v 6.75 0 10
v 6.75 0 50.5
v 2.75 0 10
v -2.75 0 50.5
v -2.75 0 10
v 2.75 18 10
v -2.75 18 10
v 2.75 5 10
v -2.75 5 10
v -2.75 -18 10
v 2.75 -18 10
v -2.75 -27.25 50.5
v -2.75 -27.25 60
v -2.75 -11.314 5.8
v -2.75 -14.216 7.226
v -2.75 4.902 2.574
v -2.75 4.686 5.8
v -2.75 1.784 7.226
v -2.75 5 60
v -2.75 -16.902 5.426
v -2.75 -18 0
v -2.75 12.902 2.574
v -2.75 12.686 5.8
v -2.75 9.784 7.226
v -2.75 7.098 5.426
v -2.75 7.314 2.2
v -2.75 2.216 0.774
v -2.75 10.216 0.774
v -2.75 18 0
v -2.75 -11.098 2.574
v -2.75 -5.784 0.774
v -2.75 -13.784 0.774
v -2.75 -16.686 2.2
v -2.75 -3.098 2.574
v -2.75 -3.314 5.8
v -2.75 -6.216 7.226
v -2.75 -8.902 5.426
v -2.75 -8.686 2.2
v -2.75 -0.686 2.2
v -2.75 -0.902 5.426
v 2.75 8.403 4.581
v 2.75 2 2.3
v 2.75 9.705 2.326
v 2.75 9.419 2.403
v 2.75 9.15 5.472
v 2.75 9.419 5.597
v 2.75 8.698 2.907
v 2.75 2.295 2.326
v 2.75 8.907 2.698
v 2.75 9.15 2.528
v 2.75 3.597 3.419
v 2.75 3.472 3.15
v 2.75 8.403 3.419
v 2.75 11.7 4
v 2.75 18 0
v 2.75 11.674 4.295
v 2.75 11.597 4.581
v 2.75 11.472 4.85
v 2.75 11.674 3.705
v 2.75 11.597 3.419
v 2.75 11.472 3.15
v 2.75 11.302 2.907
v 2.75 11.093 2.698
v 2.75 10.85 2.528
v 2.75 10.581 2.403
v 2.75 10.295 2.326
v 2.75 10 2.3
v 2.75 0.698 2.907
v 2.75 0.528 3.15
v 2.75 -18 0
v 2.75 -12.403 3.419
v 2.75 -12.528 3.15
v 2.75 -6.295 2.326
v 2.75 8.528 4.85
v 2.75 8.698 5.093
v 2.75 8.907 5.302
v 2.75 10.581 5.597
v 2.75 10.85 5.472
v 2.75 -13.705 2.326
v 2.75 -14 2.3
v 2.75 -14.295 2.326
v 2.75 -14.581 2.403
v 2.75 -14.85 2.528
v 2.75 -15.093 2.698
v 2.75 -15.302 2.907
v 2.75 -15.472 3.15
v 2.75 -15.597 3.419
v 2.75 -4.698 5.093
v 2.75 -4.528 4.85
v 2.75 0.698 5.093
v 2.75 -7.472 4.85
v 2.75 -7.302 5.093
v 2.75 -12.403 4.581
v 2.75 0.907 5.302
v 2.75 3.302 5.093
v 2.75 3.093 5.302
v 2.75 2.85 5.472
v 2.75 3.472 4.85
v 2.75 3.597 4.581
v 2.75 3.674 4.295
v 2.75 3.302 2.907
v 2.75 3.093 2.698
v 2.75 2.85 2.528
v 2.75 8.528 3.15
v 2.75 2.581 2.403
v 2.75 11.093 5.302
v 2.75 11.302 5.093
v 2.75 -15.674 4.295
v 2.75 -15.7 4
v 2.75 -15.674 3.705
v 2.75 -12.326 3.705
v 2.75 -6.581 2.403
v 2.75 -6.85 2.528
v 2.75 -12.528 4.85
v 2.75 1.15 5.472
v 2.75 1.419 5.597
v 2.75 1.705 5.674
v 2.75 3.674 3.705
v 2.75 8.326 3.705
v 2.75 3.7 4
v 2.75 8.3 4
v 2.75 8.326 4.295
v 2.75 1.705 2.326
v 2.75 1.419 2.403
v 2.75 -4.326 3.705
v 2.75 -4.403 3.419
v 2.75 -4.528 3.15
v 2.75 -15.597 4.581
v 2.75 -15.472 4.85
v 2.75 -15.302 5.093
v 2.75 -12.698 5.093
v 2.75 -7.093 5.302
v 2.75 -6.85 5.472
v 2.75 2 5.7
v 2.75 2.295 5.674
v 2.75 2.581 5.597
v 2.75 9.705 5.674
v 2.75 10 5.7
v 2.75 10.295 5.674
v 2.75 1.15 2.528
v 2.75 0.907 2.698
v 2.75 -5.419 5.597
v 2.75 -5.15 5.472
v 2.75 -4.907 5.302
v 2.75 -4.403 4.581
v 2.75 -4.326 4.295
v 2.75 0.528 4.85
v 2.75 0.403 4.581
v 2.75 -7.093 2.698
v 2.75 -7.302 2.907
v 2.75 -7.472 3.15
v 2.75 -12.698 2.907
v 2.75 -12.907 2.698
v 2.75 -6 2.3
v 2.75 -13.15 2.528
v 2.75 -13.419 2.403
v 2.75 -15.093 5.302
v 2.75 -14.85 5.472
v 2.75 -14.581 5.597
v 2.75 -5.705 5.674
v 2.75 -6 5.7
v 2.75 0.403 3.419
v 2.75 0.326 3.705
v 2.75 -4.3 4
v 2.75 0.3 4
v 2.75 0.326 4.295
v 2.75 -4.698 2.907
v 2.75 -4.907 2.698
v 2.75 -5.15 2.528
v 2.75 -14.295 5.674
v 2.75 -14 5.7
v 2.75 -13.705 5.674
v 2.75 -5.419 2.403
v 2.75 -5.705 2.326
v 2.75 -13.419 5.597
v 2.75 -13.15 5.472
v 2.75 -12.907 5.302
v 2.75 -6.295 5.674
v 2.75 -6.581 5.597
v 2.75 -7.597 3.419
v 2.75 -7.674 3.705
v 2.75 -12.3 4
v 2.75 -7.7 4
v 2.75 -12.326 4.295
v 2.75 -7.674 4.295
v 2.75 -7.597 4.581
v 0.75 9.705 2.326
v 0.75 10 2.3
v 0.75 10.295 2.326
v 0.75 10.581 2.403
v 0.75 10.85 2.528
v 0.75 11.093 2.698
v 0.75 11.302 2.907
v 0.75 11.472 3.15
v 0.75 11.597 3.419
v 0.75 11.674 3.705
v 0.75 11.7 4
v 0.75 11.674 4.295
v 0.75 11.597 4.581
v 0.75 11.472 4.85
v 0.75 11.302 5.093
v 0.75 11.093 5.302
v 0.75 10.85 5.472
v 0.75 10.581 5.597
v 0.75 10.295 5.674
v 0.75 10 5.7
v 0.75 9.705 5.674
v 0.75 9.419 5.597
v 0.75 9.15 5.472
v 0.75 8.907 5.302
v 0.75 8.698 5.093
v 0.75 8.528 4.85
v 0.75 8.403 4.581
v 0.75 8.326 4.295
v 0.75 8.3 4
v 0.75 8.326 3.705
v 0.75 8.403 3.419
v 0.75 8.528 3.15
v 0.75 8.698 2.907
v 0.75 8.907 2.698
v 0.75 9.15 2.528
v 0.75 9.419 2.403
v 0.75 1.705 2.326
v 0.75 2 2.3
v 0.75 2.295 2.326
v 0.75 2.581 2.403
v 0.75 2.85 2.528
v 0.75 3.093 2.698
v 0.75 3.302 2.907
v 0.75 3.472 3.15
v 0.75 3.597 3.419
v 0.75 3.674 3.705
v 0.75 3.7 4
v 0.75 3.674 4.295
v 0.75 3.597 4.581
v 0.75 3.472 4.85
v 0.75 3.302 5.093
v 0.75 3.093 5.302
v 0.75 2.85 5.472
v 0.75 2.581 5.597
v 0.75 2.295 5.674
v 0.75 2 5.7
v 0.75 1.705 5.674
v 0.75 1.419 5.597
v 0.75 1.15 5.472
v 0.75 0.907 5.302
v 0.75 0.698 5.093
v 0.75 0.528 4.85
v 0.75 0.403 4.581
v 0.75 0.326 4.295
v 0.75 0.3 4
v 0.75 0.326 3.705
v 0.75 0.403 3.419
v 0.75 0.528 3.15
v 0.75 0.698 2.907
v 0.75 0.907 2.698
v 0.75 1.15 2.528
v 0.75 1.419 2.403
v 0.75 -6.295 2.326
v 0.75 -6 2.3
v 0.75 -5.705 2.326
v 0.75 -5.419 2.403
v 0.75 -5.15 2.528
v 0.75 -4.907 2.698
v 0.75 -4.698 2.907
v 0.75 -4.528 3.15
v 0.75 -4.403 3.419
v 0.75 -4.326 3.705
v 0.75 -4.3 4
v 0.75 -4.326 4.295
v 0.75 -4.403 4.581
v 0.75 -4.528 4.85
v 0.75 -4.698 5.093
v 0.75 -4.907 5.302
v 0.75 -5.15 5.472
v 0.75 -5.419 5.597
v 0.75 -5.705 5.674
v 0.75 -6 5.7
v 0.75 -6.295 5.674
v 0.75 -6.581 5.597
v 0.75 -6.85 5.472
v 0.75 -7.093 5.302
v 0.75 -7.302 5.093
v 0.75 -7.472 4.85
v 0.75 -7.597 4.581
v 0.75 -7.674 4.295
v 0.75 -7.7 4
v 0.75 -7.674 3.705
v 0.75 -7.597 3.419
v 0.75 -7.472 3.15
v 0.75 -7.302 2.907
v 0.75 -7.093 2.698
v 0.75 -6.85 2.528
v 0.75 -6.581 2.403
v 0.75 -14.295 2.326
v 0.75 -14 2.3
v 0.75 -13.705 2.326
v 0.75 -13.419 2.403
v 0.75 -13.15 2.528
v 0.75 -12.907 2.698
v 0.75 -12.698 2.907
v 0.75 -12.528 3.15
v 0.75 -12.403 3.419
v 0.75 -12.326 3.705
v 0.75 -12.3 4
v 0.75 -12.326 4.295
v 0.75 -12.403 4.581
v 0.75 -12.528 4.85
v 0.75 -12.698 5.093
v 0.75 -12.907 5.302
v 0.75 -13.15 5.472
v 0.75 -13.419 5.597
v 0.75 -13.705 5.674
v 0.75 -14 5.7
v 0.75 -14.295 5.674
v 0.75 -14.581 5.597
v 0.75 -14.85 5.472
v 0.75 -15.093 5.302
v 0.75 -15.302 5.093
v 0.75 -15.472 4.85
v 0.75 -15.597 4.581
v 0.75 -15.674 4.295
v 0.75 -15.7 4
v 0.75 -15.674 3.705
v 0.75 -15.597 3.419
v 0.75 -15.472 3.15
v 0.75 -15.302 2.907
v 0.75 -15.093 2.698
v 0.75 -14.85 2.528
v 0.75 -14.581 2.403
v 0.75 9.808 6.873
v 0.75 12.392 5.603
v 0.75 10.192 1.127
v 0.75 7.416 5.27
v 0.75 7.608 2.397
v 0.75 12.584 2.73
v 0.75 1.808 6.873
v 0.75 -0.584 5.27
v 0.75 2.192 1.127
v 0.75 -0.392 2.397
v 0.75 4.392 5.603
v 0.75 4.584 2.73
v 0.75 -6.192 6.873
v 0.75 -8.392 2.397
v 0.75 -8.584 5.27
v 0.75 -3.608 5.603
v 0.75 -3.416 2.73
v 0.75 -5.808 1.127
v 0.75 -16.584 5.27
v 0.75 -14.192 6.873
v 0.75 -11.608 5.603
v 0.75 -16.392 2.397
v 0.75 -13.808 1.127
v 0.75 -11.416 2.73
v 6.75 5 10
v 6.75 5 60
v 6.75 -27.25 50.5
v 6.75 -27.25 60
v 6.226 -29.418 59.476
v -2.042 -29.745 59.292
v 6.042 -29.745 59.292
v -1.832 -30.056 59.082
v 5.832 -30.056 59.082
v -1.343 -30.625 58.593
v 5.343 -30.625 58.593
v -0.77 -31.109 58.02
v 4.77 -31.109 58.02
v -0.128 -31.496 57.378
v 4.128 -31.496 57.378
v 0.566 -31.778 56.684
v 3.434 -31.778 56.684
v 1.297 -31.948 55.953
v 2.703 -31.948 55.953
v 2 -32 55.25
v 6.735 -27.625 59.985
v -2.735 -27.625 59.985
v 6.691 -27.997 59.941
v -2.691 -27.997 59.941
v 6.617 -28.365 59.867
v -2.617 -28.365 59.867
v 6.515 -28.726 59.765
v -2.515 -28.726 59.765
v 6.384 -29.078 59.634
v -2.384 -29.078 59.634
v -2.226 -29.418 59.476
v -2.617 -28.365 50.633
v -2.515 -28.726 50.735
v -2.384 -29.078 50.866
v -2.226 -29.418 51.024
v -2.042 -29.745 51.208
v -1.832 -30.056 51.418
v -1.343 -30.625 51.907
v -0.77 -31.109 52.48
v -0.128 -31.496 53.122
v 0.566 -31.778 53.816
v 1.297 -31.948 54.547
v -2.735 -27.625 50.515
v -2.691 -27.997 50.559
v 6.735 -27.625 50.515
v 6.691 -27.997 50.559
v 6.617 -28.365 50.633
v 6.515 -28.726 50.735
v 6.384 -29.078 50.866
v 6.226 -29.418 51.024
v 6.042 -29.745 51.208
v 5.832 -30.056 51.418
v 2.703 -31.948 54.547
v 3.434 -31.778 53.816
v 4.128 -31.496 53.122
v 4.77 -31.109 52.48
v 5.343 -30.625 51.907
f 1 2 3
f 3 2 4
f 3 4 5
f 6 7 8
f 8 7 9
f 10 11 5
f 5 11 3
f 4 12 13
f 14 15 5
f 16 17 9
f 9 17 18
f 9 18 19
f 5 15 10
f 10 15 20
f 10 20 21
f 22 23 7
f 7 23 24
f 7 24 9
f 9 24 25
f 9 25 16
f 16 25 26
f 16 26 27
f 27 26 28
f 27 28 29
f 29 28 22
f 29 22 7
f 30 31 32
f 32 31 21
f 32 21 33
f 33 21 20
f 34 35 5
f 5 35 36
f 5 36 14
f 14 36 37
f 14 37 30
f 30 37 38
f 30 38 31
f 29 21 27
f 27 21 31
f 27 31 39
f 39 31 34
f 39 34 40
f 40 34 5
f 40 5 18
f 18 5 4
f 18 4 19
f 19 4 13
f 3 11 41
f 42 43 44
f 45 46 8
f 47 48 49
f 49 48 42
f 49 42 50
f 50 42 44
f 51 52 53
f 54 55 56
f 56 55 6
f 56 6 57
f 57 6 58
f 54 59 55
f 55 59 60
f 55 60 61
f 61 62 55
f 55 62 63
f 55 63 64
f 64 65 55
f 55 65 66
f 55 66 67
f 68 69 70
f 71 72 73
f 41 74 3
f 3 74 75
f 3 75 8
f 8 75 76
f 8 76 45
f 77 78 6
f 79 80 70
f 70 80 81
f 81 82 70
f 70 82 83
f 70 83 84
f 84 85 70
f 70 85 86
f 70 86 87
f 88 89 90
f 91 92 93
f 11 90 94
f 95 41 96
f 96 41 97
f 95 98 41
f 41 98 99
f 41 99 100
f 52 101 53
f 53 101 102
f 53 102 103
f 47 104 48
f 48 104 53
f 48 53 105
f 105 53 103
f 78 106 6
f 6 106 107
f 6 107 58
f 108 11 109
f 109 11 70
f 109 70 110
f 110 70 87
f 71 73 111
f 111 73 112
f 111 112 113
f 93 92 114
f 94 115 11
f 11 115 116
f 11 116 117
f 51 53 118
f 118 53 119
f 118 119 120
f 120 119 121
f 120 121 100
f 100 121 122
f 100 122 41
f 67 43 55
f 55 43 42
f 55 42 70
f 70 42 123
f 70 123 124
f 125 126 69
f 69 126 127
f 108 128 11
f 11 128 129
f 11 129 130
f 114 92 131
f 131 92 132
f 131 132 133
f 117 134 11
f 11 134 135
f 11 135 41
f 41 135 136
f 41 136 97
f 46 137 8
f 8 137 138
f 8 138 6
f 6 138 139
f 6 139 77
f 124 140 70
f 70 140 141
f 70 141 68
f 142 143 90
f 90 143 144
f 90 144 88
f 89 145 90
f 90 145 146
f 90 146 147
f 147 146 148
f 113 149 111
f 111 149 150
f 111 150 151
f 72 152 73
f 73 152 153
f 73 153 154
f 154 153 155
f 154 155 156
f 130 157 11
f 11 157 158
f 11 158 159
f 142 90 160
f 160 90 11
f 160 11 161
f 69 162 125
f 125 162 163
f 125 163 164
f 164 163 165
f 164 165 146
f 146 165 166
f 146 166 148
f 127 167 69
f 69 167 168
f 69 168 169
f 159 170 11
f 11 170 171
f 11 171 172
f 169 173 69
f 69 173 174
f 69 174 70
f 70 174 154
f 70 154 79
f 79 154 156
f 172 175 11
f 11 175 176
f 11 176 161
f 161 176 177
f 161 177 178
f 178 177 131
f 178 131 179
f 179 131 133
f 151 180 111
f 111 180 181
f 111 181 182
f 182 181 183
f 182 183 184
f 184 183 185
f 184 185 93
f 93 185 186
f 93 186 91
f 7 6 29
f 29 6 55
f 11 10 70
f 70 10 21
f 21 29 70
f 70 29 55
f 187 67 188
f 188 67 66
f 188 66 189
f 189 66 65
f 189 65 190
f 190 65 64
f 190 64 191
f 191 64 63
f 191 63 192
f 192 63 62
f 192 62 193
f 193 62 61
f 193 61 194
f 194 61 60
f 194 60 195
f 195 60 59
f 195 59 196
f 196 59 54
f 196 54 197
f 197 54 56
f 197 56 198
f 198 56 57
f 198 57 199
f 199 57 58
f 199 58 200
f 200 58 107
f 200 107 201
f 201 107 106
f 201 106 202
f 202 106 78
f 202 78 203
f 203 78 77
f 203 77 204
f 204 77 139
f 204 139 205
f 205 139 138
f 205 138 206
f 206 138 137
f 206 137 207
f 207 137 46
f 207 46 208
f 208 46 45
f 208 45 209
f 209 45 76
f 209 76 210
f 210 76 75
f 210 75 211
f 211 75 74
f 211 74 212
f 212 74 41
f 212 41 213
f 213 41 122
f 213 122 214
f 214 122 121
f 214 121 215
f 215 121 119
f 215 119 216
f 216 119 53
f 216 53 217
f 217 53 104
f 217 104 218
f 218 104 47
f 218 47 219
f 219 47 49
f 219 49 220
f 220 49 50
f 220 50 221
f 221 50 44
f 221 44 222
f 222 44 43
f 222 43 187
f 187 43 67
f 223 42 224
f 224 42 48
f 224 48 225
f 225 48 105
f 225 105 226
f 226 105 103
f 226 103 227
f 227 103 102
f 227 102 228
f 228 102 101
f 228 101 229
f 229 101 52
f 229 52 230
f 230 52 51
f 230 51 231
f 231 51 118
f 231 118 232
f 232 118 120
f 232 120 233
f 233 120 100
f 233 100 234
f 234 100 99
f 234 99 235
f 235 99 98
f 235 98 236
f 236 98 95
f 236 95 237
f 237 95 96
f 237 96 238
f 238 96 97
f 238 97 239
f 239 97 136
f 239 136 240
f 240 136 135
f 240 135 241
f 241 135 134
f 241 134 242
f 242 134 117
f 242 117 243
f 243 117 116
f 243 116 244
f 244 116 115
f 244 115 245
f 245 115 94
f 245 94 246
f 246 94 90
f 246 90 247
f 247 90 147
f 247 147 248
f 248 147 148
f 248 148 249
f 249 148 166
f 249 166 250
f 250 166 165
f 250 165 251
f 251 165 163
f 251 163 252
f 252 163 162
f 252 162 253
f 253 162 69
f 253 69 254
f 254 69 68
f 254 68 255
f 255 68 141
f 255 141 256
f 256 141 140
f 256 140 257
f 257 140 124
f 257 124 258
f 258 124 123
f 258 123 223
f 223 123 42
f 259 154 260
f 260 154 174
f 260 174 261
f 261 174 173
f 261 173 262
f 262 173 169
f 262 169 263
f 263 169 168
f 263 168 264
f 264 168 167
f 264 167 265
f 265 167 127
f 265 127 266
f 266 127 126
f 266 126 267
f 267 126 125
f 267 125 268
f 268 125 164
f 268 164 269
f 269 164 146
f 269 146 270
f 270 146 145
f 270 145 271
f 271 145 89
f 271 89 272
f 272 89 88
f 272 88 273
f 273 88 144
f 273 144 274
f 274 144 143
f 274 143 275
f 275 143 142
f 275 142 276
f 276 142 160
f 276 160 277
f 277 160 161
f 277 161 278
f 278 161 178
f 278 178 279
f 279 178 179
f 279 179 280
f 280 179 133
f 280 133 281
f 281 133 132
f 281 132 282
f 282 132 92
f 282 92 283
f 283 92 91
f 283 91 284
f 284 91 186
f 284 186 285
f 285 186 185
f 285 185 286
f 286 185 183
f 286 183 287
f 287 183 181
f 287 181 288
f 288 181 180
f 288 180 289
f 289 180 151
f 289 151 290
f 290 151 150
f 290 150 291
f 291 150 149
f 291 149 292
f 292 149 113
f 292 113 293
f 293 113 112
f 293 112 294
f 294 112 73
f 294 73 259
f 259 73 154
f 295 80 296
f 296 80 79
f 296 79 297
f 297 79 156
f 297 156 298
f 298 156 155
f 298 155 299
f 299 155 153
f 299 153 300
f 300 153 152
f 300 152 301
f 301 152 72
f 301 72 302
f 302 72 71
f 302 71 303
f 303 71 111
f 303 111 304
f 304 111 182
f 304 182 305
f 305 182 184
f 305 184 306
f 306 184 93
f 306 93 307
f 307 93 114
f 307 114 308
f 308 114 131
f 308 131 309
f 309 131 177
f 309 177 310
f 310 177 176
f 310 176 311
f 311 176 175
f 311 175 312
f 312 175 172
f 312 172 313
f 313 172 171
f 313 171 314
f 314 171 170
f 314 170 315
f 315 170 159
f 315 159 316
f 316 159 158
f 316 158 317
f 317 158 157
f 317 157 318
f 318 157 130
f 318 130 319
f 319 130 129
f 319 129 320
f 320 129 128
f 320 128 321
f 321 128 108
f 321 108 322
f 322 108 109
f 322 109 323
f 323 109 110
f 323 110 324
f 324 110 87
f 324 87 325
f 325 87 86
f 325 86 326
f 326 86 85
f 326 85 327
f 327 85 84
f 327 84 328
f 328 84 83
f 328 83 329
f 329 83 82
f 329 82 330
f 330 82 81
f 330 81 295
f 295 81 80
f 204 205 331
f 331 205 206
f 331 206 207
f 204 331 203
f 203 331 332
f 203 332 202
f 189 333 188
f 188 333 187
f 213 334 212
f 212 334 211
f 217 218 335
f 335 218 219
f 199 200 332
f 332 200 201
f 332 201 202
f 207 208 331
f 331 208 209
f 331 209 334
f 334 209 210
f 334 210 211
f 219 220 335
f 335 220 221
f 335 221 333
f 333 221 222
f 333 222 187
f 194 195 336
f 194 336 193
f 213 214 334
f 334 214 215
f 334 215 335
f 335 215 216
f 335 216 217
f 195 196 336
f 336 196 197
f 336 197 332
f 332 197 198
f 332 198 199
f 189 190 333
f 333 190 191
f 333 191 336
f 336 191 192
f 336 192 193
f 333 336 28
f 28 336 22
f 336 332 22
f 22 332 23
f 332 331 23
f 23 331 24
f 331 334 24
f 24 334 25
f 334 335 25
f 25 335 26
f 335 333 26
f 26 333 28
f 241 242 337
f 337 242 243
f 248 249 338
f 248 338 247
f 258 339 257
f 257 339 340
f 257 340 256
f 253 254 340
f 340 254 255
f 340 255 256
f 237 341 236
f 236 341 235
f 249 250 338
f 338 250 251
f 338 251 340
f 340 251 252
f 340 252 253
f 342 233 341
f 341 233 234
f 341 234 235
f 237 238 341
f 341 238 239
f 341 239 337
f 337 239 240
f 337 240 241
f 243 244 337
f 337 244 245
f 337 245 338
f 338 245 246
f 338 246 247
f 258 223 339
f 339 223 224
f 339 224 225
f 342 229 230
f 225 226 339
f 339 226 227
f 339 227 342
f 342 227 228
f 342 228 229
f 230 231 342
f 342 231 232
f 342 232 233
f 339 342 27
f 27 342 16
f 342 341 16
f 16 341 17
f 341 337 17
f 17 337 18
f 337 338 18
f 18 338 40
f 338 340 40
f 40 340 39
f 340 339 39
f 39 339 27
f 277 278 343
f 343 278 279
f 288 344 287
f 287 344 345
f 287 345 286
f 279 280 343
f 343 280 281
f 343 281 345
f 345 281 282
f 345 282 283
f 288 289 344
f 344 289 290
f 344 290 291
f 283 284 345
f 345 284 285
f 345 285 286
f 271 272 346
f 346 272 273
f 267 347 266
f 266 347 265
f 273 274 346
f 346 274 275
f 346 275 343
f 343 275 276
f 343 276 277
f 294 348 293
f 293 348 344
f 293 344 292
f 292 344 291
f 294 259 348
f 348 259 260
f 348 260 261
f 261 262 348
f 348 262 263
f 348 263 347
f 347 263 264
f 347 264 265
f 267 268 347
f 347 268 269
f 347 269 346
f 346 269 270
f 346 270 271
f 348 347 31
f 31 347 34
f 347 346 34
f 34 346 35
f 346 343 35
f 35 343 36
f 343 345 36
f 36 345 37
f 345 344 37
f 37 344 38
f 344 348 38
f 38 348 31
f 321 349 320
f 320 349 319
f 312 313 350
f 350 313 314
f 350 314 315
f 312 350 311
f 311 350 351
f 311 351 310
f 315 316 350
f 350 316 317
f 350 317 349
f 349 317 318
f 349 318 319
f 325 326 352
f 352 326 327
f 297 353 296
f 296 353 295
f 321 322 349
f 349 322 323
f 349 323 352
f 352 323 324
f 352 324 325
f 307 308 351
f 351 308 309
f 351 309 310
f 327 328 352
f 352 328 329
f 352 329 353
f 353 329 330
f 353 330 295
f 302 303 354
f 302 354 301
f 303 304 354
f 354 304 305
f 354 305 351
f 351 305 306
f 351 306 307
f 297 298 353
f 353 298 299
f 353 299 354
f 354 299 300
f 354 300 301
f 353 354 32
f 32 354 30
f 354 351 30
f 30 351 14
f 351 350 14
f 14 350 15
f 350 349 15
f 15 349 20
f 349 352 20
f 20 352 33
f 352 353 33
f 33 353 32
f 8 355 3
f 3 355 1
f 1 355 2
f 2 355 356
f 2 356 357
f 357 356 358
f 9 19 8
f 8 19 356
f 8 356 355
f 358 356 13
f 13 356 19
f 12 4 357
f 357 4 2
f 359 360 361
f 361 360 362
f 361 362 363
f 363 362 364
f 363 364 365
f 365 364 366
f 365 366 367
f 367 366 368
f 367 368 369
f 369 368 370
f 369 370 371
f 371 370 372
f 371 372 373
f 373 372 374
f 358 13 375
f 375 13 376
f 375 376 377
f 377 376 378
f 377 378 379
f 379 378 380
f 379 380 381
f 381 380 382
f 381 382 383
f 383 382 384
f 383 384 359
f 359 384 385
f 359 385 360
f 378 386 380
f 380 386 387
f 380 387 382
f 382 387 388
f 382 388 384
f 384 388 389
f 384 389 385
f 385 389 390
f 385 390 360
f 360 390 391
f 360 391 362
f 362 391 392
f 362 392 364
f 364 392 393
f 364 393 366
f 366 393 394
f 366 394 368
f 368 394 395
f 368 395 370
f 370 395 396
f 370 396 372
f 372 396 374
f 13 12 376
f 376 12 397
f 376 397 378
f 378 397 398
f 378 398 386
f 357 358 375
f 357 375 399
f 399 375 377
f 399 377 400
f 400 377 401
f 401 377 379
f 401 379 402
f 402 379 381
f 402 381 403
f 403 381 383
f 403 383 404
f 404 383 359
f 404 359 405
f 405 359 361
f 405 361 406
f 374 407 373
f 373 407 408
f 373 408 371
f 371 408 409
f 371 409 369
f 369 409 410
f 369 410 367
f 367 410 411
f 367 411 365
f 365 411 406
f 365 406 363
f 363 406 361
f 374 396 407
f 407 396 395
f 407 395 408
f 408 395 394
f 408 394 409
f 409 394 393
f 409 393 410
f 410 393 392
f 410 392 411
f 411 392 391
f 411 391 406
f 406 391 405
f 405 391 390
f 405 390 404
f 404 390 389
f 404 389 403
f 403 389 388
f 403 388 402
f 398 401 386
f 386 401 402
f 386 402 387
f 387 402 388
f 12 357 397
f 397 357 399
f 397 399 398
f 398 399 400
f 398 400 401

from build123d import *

# Parameters (mm, degrees)
ESQUISSE1_W                       = 5.5
ESQUISSE1_H                       = 36
BOSS_EXTRU_1_DEPTH                = 10
ESQUISSE2_R                       = 1.7
ENL_V_MAT_EXTRU_1_DEPTH           = 4
ENL_V_MAT_EXTRU_2_DEPTH           = 3.5
ENL_V_MAT_EXTRU_2_DRAFT           = 5
ENL_V_MAT_EXTRU_2_PROFILE_2_DEPTH = 3.5
ENL_V_MAT_EXTRU_2_PROFILE_2_DRAFT = 5
ENL_V_MAT_EXTRU_2_PROFILE_3_DEPTH = 3.5
ENL_V_MAT_EXTRU_2_PROFILE_3_DRAFT = 5
ENL_V_MAT_EXTRU_2_PROFILE_4_DEPTH = 3.5
ENL_V_MAT_EXTRU_2_PROFILE_4_DRAFT = 5
ESQUISSE4_W                       = 9.5
ESQUISSE4_H                       = 5
BOSS_EXTRU_2_DEPTH                = 50
ESQUISSE5_W                       = 9.5
ESQUISSE5_H                       = 9.5
BOSS_EXTRU_3_DEPTH                = 32
CONG_1_R                          = 4.75


with BuildPart() as part:
    # Esquisse1 → Boss.-Extru.1 (new body)
    with BuildSketch(Plane.XY):
        Rectangle(ESQUISSE1_W, ESQUISSE1_H)
    extrude(amount=BOSS_EXTRU_1_DEPTH)

    # Esquisse2 → Enlèv. mat.-Extru.1 (cut)
    with BuildSketch(Plane(origin=(2.75, 0, 0), x_dir=(0, 0, -1), z_dir=(1, 0, 0))):
        with Locations((-4, 10)):
            Circle(ESQUISSE2_R)
        with Locations((-4, 2)):
            Circle(ESQUISSE2_R)
        with Locations((-4, -6)):
            Circle(ESQUISSE2_R)
        with Locations((-4, -14)):
            Circle(ESQUISSE2_R)
    extrude(amount=-ENL_V_MAT_EXTRU_1_DEPTH, mode=Mode.SUBTRACT)


with BuildPart() as enl_v_mat_extru_2_tool:
    # Esquisse3 → Enlèv. mat.-Extru.2 (with draft: the straight prism first)
    with BuildSketch(Plane(origin=(-2.75, 0, 0), x_dir=(0, 0, -1), z_dir=(1, 0, 0))):
        Polygon((-2.574135551, 4.901765653), (-5.800070547, 4.685717662), (-7.225934996, 1.783952009), (-5.425864449, -0.901765653), (-2.199929453, -0.685717662), (-0.774065004, 2.216047991), align=None)
    extrude(amount=ENL_V_MAT_EXTRU_2_DEPTH)
    # Enlèv. mat.-Extru.2: the draft: its side faces are tilted about the plane it starts from
    enl_v_mat_extru_2_sides = [enl_v_mat_extru_2_tool.faces().sort_by_distance(p)[0] for p in [
        (-1, 4.793741658, 4.187103049),
        (-1, 3.234834835, 6.513002771),
        (-1, 0.441093178, 6.325899723),
        (-1, -0.793741658, 3.812896951),
        (-1, 0.765165165, 1.486997229),
        (-1, 3.558906822, 1.674100277),
    ]]
    draft(enl_v_mat_extru_2_sides, Plane(origin=(-2.75, 0, 0), x_dir=(0, 0, -1), z_dir=(1, 0, 0)), ENL_V_MAT_EXTRU_2_DRAFT)


with BuildPart() as part_1:
    add(part.part)

    # Enlèv. mat.-Extru.2: cut by enl_v_mat_extru_2_tool
    add(enl_v_mat_extru_2_tool.part, mode=Mode.SUBTRACT)


with BuildPart() as enl_v_mat_extru_2_profile_2_tool:
    # Esquisse3 → Enlèv. mat.-Extru.2 profile 2 (with draft: the straight prism first)
    with BuildSketch(Plane(origin=(-2.75, 0, 0), x_dir=(0, 0, -1), z_dir=(1, 0, 0))):
        Polygon((-2.574135551, 12.901765653), (-5.800070547, 12.685717662), (-7.225934996, 9.783952009), (-5.425864449, 7.098234347), (-2.199929453, 7.314282338), (-0.774065004, 10.216047991), align=None)
    extrude(amount=ENL_V_MAT_EXTRU_2_PROFILE_2_DEPTH)
    # Enlèv. mat.-Extru.2 profile 2: the draft: its side faces are tilted about the plane it starts from
    enl_v_mat_extru_2_profile_2_sides = [enl_v_mat_extru_2_profile_2_tool.faces().sort_by_distance(p)[0] for p in [
        (-1, 12.793741658, 4.187103049),
        (-1, 11.234834835, 6.513002771),
        (-1, 8.441093178, 6.325899723),
        (-1, 7.206258342, 3.812896951),
        (-1, 8.765165165, 1.486997229),
        (-1, 11.558906822, 1.674100277),
    ]]
    draft(enl_v_mat_extru_2_profile_2_sides, Plane(origin=(-2.75, 0, 0), x_dir=(0, 0, -1), z_dir=(1, 0, 0)), ENL_V_MAT_EXTRU_2_PROFILE_2_DRAFT)


with BuildPart() as part_2:
    add(part_1.part)

    # Enlèv. mat.-Extru.2 profile 2: cut by enl_v_mat_extru_2_profile_2_tool
    add(enl_v_mat_extru_2_profile_2_tool.part, mode=Mode.SUBTRACT)


with BuildPart() as enl_v_mat_extru_2_profile_3_tool:
    # Esquisse3 → Enlèv. mat.-Extru.2 profile 3 (with draft: the straight prism first)
    with BuildSketch(Plane(origin=(-2.75, 0, 0), x_dir=(0, 0, -1), z_dir=(1, 0, 0))):
        Polygon((-2.574135551, -3.098234347), (-5.800070547, -3.314282338), (-7.225934996, -6.216047991), (-5.425864449, -8.901765653), (-2.199929453, -8.685717662), (-0.774065004, -5.783952009), align=None)
    extrude(amount=ENL_V_MAT_EXTRU_2_PROFILE_3_DEPTH)
    # Enlèv. mat.-Extru.2 profile 3: the draft: its side faces are tilted about the plane it starts from
    enl_v_mat_extru_2_profile_3_sides = [enl_v_mat_extru_2_profile_3_tool.faces().sort_by_distance(p)[0] for p in [
        (-1, -3.206258342, 4.187103049),
        (-1, -4.765165165, 6.513002771),
        (-1, -7.558906822, 6.325899723),
        (-1, -8.793741658, 3.812896951),
        (-1, -7.234834835, 1.486997229),
        (-1, -4.441093178, 1.674100277),
    ]]
    draft(enl_v_mat_extru_2_profile_3_sides, Plane(origin=(-2.75, 0, 0), x_dir=(0, 0, -1), z_dir=(1, 0, 0)), ENL_V_MAT_EXTRU_2_PROFILE_3_DRAFT)


with BuildPart() as part_3:
    add(part_2.part)

    # Enlèv. mat.-Extru.2 profile 3: cut by enl_v_mat_extru_2_profile_3_tool
    add(enl_v_mat_extru_2_profile_3_tool.part, mode=Mode.SUBTRACT)


with BuildPart() as enl_v_mat_extru_2_profile_4_tool:
    # Esquisse3 → Enlèv. mat.-Extru.2 profile 4 (with draft: the straight prism first)
    with BuildSketch(Plane(origin=(-2.75, 0, 0), x_dir=(0, 0, -1), z_dir=(1, 0, 0))):
        Polygon((-2.574135551, -11.098234347), (-5.800070547, -11.314282338), (-7.225934996, -14.216047991), (-5.425864449, -16.901765653), (-2.199929453, -16.685717662), (-0.774065004, -13.783952009), align=None)
    extrude(amount=ENL_V_MAT_EXTRU_2_PROFILE_4_DEPTH)
    # Enlèv. mat.-Extru.2 profile 4: the draft: its side faces are tilted about the plane it starts from
    enl_v_mat_extru_2_profile_4_sides = [enl_v_mat_extru_2_profile_4_tool.faces().sort_by_distance(p)[0] for p in [
        (-1, -11.206258342, 4.187103049),
        (-1, -12.765165165, 6.513002771),
        (-1, -15.558906822, 6.325899723),
        (-1, -16.793741658, 3.812896951),
        (-1, -15.234834835, 1.486997229),
        (-1, -12.441093178, 1.674100277),
    ]]
    draft(enl_v_mat_extru_2_profile_4_sides, Plane(origin=(-2.75, 0, 0), x_dir=(0, 0, -1), z_dir=(1, 0, 0)), ENL_V_MAT_EXTRU_2_PROFILE_4_DRAFT)


with BuildPart() as part_4:
    add(part_3.part)

    # Enlèv. mat.-Extru.2 profile 4: cut by enl_v_mat_extru_2_profile_4_tool
    add(enl_v_mat_extru_2_profile_4_tool.part, mode=Mode.SUBTRACT)

    # Esquisse4 → Boss.-Extru.2 (add)
    with BuildSketch(Plane.XY.offset(10)):
        with Locations((2, 2.5)):
            Rectangle(ESQUISSE4_W, ESQUISSE4_H)
    extrude(amount=BOSS_EXTRU_2_DEPTH)

    # Esquisse5 → Boss.-Extru.3 (add)
    with BuildSketch(Plane.XZ):
        with Locations((2, 55.25)):
            Rectangle(ESQUISSE5_W, ESQUISSE5_H)
    extrude(amount=BOSS_EXTRU_3_DEPTH)

    # Congé1
    cong_1_edges = [part_4.edges().sort_by_distance(p)[0] for p in [
        (-2.75, -32, 55.25),
        (2, -32, 50.5),
        (6.75, -32, 55.25),
        (2, -32, 60),
    ]]
    fillet(cong_1_edges, radius=CONG_1_R - 0.0001)  # a hair under: the kernel refuses the full size


solid = part_4.part
